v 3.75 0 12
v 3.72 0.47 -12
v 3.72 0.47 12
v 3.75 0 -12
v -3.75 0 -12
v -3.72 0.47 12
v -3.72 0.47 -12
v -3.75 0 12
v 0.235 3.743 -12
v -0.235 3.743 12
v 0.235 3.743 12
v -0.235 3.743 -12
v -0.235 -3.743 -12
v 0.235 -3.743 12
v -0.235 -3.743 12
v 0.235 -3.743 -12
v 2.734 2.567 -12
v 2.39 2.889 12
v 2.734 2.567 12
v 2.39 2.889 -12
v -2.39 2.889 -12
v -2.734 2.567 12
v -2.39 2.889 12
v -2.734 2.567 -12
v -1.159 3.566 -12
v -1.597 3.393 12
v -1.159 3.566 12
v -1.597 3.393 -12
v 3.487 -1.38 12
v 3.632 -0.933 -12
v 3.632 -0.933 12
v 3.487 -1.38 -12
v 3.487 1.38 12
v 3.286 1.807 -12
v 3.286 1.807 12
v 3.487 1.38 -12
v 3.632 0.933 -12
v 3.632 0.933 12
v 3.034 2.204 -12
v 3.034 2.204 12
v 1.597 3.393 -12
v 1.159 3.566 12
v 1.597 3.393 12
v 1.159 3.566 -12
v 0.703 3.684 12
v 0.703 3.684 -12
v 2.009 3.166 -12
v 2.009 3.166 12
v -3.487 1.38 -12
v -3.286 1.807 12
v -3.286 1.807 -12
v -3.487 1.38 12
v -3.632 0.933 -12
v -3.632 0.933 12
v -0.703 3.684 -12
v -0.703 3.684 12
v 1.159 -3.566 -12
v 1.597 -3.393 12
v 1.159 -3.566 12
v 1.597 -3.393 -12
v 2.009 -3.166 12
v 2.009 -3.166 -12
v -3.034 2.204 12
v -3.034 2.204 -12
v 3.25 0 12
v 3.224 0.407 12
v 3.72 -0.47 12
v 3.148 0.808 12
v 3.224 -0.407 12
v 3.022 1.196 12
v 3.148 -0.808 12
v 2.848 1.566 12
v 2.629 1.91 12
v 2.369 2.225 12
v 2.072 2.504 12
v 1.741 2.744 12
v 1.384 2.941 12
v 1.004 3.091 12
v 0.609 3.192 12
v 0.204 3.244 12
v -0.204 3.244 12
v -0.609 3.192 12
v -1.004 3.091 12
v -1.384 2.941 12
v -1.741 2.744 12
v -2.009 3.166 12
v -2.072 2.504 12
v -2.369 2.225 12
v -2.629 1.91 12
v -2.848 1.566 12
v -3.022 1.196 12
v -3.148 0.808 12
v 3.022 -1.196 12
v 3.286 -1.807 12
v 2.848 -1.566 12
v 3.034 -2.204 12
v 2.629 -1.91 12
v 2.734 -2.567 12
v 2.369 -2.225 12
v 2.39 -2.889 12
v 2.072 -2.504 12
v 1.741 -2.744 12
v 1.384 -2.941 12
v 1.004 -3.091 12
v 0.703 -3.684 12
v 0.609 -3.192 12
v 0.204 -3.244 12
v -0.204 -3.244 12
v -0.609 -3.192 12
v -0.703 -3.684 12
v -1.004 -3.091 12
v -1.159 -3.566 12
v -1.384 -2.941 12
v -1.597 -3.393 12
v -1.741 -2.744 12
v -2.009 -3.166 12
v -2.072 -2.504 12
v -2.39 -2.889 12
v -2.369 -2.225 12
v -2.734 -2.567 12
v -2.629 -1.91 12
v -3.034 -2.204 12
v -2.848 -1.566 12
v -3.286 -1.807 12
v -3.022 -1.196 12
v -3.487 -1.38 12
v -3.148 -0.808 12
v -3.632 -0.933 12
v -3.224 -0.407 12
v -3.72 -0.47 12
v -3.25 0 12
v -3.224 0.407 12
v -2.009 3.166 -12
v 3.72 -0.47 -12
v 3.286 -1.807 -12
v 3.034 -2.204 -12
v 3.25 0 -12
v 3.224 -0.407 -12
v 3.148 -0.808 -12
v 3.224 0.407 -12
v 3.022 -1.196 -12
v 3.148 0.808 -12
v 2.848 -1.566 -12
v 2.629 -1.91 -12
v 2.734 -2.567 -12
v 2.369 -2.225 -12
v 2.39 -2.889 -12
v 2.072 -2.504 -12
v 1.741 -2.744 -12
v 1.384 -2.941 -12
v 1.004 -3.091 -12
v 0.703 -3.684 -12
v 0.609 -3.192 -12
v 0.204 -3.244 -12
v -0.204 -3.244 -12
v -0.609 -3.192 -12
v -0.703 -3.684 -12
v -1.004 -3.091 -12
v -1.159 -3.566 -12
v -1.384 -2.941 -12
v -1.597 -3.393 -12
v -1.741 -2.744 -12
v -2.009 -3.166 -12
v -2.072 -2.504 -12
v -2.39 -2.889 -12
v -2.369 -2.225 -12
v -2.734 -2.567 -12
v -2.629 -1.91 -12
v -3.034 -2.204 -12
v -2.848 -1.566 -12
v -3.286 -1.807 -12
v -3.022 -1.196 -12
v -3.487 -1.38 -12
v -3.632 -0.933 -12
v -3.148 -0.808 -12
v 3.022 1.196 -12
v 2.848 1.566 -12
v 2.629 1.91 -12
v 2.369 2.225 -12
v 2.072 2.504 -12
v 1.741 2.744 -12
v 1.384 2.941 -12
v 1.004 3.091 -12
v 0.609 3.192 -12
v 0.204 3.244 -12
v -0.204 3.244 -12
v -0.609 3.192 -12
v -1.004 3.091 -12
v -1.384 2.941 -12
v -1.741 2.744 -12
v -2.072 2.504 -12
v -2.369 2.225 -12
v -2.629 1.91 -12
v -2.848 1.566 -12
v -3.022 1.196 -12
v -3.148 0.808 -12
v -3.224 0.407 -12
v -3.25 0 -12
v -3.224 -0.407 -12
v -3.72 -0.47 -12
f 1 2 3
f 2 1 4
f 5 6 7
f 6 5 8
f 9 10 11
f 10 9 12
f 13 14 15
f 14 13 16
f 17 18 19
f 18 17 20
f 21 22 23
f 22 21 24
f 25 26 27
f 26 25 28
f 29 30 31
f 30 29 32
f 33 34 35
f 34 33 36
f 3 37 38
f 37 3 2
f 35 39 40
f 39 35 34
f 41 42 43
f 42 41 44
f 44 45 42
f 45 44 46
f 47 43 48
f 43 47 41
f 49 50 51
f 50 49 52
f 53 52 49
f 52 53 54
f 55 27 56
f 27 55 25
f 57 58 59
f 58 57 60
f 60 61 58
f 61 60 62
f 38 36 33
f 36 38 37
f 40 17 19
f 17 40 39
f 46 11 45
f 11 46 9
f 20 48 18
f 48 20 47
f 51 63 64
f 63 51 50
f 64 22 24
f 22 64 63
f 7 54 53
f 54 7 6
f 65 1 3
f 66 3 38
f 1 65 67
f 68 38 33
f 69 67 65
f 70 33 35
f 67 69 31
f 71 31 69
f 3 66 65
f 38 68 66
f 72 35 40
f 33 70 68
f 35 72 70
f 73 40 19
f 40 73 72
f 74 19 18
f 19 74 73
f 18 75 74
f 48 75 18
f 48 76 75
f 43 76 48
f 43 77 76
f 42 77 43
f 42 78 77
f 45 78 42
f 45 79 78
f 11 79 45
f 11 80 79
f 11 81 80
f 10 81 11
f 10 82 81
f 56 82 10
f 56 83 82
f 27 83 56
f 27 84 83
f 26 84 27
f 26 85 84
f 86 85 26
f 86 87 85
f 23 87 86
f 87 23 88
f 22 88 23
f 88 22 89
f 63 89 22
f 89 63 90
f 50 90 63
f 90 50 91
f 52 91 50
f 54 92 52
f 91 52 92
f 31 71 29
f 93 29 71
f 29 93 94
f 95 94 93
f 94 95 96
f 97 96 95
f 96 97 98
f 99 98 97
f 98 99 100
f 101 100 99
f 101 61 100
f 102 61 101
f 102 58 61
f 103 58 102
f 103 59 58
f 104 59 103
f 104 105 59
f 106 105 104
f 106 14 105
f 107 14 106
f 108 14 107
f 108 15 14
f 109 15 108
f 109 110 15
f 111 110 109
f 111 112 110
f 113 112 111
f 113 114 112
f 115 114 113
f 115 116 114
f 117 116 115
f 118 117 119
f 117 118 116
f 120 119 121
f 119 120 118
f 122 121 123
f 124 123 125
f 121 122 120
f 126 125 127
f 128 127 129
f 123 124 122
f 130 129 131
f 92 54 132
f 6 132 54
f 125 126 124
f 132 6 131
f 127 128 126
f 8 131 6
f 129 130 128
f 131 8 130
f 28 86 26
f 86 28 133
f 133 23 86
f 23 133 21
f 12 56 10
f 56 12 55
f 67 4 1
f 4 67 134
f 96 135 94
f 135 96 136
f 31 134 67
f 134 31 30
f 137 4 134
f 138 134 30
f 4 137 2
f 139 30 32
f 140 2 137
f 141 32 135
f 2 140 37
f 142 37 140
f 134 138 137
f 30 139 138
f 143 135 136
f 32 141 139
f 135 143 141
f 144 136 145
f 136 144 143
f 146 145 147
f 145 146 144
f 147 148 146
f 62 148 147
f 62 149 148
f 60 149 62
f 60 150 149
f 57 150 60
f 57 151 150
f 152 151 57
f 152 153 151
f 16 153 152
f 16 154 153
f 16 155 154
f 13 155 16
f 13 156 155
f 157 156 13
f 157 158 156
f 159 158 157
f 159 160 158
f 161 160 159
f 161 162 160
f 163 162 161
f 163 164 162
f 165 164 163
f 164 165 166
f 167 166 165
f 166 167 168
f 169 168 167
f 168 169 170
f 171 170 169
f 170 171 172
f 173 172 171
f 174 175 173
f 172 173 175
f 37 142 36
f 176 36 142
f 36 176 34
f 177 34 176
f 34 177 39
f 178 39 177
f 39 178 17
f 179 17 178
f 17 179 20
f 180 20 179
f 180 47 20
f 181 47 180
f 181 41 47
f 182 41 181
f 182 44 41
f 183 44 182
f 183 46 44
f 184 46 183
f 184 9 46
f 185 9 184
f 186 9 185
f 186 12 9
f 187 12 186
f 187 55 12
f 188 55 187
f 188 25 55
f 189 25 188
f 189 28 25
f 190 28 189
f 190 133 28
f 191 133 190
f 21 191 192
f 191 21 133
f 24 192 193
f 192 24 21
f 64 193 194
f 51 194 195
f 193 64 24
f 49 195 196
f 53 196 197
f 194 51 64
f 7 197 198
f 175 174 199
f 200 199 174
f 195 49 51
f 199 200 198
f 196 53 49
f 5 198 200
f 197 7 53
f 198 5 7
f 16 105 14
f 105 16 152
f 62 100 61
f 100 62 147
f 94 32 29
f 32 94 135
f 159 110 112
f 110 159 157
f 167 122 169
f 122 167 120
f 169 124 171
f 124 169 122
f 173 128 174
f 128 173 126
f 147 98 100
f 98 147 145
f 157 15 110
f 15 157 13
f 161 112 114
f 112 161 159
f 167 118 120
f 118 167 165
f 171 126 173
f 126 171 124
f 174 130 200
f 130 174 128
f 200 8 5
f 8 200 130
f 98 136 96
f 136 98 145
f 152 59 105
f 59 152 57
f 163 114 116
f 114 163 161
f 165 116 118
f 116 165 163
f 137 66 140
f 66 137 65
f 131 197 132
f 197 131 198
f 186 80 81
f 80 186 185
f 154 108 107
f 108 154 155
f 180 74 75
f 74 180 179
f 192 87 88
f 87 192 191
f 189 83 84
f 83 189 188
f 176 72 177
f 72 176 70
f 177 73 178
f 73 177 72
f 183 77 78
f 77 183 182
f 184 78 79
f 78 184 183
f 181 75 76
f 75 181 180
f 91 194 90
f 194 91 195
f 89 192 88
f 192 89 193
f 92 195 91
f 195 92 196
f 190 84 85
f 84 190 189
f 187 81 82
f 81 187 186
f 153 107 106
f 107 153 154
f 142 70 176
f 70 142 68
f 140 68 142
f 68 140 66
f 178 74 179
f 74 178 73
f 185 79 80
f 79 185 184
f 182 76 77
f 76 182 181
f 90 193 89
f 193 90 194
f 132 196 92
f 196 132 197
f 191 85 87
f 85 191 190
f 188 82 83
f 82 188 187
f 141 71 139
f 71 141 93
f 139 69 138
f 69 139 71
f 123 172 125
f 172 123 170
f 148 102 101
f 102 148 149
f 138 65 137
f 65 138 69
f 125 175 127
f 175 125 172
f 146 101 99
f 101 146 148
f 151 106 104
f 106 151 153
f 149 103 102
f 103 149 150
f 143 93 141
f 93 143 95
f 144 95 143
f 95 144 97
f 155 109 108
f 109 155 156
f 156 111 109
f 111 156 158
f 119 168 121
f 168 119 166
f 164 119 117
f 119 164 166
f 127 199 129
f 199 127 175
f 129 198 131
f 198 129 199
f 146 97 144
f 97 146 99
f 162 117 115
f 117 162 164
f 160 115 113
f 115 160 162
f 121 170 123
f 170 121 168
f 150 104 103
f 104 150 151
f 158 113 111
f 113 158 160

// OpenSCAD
$fn = 50;


difference() {
	union() {
		translate(v = [0, 0, -12.0000000000]) {
			cylinder(h = 24, r = 3.7500000000);
		}
	}
	union() {
		translate(v = [0, 0, -100.0000000000]) {
			cylinder(h = 200, r = 3.2500000000);
		}
	}
}
